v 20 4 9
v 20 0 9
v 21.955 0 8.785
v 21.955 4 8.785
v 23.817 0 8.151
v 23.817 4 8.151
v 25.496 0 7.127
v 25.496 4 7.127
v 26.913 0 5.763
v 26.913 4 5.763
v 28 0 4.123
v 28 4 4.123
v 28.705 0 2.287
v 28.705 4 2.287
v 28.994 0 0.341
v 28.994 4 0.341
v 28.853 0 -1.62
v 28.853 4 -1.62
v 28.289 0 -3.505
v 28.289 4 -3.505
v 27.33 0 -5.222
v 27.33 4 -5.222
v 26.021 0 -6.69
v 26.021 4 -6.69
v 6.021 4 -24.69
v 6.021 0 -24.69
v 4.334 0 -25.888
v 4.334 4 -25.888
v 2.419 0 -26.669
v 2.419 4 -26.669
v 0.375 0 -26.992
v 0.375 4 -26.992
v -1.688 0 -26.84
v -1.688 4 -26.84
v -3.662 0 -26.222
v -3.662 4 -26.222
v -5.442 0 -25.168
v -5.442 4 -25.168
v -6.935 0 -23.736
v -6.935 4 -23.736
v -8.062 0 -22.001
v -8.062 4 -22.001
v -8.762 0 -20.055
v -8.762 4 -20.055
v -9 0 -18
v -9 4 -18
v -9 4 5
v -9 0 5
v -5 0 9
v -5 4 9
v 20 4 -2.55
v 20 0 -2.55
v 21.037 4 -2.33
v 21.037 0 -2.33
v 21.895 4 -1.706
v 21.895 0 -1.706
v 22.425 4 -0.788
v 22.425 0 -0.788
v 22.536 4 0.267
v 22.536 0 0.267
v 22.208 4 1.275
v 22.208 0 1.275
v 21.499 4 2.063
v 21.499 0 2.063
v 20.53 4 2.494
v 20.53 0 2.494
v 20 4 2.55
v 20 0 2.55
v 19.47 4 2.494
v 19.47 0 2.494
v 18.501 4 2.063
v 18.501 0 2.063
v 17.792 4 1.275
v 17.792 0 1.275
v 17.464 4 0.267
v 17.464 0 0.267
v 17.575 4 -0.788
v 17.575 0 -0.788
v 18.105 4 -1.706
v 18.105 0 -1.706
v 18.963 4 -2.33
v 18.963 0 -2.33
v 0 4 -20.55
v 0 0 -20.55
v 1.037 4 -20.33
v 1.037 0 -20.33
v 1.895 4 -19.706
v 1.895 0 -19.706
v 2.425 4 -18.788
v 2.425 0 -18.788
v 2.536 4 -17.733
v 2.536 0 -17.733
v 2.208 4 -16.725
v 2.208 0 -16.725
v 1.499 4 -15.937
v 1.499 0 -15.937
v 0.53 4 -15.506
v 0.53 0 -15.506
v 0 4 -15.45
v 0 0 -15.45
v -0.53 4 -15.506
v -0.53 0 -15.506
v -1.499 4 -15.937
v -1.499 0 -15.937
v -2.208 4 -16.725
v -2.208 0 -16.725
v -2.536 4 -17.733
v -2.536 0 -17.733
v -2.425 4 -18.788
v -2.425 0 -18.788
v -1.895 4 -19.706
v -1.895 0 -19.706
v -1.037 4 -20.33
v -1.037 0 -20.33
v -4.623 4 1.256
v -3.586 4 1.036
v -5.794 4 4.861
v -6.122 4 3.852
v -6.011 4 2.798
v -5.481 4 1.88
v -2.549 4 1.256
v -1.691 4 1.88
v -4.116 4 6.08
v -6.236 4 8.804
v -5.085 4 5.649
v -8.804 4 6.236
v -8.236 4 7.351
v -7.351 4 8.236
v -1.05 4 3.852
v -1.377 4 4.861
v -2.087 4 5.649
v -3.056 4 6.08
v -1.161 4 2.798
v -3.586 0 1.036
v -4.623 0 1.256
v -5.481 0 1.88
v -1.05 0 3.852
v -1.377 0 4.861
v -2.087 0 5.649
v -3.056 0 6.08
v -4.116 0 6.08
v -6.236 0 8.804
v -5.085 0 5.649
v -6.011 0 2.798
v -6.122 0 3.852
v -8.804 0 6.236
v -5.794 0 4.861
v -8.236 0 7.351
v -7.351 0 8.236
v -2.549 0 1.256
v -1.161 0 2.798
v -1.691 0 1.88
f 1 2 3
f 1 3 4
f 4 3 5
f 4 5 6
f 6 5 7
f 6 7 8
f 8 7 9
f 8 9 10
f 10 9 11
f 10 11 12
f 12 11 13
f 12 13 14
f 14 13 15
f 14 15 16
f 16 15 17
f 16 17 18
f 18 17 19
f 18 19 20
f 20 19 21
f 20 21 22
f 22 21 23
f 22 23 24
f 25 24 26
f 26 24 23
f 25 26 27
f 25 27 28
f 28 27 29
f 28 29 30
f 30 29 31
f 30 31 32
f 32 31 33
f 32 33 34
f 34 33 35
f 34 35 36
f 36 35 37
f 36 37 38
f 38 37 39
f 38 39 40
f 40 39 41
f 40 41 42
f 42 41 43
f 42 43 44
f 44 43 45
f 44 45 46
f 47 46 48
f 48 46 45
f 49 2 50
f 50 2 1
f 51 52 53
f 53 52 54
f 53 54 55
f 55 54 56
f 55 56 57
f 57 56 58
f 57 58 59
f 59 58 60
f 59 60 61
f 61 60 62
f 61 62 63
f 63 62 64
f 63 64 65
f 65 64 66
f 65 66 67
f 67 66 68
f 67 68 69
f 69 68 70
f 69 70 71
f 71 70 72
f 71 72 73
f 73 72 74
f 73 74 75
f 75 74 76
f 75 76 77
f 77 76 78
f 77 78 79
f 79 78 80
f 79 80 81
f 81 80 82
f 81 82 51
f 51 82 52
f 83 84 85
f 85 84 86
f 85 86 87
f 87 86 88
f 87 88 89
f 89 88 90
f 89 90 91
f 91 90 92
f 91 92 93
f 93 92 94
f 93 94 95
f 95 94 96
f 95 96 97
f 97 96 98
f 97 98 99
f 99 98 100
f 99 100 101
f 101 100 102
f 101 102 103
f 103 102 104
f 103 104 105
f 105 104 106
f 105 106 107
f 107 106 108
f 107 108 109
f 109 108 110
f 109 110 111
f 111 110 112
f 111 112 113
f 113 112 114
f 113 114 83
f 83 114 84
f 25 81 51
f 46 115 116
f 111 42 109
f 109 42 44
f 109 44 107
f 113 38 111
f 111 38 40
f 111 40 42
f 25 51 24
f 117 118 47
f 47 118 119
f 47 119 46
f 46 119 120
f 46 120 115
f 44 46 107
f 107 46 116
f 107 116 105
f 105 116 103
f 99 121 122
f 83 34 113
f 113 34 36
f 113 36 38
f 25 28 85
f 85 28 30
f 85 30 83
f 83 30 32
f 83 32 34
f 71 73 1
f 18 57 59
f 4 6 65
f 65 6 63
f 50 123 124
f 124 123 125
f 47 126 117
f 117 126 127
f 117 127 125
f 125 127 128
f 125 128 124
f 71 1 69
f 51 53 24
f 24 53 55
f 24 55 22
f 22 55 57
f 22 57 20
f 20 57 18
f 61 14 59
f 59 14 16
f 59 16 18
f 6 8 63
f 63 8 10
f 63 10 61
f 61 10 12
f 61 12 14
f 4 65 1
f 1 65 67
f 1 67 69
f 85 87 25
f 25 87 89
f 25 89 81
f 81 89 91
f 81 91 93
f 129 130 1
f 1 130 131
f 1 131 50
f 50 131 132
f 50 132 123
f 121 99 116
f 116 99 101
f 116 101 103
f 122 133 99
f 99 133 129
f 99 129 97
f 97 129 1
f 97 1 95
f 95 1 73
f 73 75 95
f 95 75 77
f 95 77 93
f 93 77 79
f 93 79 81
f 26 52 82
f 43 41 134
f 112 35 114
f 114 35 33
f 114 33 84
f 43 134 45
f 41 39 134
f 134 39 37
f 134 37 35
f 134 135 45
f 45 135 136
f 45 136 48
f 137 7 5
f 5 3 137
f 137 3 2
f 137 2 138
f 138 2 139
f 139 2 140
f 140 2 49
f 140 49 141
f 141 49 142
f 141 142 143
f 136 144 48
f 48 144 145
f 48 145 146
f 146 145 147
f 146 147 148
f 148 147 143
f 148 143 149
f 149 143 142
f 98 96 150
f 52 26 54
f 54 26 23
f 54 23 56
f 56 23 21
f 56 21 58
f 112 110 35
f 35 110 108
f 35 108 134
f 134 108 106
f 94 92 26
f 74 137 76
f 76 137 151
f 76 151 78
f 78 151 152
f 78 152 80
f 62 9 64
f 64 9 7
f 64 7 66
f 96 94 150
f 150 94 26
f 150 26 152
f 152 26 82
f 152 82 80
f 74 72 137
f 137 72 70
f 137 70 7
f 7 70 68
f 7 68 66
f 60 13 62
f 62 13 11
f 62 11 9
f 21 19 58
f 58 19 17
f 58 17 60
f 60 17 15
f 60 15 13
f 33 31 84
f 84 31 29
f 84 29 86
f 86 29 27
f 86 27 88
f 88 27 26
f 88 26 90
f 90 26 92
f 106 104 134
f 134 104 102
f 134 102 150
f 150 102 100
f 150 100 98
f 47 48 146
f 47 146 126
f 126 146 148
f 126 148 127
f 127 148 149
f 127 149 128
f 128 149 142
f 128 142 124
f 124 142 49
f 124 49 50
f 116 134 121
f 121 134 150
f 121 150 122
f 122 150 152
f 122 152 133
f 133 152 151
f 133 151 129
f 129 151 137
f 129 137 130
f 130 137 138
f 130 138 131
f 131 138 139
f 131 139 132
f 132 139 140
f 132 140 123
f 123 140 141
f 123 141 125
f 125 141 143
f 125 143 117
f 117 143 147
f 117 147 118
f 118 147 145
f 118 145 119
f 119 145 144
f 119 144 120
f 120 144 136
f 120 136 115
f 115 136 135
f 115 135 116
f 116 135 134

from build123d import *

# Parameters (mm, degrees)
SKETCH1_R           = 2.55
BOSS_EXTRUDE1_DEPTH = 4
FILLET1_R           = 4
CUT_EXTRUDE1_DEPTH  = 4


with BuildPart() as part:
    # Sketch1 → Boss-Extrude1 (new body)
    with BuildSketch(Plane(origin=(0, 0, 0), x_dir=(1, 0, 0), z_dir=(0, 1, 0))):
        with BuildLine():
            Line((-9, 18), (-9, -9))
            Line((-9, -9), (20, -9))
            ThreePointArc((20, -9), (28.402583705, -3.224373905), (26.020682585, 6.689647316))
            Line((26.020682585, 6.689647316), (6.020682585, 24.689647316))
            ThreePointArc((6.020682585, 24.689647316), (-3.661547264, 26.22150057), (-9, 18))
        make_face()
        with Locations(Location((20, 0, 0), (0, 0, 270))):
            Circle(SKETCH1_R, mode=Mode.SUBTRACT)
        with Locations(Location((0, 18, 0), (0, 0, 270))):
            Circle(SKETCH1_R, mode=Mode.SUBTRACT)
    extrude(amount=BOSS_EXTRUDE1_DEPTH)

    # Fillet1
    fillet1_edges = [part.edges().sort_by_distance(p)[0] for p in [
        (-9, 2, 9),
    ]]
    fillet(fillet1_edges, radius=FILLET1_R)

    # Sketch2 → Cut-Extrude1 (cut)
    with BuildSketch(Plane.XZ):
        with BuildLine():
            ThreePointArc((-1.035786438, 3.585786438), (-1.782664146, 5.38890873), (-3.585786438, 6.135786438))
            Line((-3.585786438, 6.135786438), (-3.585786438, 3.585786438))
            Line((-3.585786438, 3.585786438), (-6.135786438, 3.585786438))
            ThreePointArc((-6.135786438, 3.585786438), (-3.585786438, 1.035786438), (-1.035786438, 3.585786438))
        make_face()
        with BuildLine():
            Line((-3.585786438, 3.585786438), (-3.585786438, 6.135786438))
            ThreePointArc((-3.585786438, 6.135786438), (-5.38890873, 5.38890873), (-6.135786438, 3.585786438))
            Line((-6.135786438, 3.585786438), (-3.585786438, 3.585786438))
        make_face()
    extrude(amount=-CUT_EXTRUDE1_DEPTH, mode=Mode.SUBTRACT)


solid = part.part
